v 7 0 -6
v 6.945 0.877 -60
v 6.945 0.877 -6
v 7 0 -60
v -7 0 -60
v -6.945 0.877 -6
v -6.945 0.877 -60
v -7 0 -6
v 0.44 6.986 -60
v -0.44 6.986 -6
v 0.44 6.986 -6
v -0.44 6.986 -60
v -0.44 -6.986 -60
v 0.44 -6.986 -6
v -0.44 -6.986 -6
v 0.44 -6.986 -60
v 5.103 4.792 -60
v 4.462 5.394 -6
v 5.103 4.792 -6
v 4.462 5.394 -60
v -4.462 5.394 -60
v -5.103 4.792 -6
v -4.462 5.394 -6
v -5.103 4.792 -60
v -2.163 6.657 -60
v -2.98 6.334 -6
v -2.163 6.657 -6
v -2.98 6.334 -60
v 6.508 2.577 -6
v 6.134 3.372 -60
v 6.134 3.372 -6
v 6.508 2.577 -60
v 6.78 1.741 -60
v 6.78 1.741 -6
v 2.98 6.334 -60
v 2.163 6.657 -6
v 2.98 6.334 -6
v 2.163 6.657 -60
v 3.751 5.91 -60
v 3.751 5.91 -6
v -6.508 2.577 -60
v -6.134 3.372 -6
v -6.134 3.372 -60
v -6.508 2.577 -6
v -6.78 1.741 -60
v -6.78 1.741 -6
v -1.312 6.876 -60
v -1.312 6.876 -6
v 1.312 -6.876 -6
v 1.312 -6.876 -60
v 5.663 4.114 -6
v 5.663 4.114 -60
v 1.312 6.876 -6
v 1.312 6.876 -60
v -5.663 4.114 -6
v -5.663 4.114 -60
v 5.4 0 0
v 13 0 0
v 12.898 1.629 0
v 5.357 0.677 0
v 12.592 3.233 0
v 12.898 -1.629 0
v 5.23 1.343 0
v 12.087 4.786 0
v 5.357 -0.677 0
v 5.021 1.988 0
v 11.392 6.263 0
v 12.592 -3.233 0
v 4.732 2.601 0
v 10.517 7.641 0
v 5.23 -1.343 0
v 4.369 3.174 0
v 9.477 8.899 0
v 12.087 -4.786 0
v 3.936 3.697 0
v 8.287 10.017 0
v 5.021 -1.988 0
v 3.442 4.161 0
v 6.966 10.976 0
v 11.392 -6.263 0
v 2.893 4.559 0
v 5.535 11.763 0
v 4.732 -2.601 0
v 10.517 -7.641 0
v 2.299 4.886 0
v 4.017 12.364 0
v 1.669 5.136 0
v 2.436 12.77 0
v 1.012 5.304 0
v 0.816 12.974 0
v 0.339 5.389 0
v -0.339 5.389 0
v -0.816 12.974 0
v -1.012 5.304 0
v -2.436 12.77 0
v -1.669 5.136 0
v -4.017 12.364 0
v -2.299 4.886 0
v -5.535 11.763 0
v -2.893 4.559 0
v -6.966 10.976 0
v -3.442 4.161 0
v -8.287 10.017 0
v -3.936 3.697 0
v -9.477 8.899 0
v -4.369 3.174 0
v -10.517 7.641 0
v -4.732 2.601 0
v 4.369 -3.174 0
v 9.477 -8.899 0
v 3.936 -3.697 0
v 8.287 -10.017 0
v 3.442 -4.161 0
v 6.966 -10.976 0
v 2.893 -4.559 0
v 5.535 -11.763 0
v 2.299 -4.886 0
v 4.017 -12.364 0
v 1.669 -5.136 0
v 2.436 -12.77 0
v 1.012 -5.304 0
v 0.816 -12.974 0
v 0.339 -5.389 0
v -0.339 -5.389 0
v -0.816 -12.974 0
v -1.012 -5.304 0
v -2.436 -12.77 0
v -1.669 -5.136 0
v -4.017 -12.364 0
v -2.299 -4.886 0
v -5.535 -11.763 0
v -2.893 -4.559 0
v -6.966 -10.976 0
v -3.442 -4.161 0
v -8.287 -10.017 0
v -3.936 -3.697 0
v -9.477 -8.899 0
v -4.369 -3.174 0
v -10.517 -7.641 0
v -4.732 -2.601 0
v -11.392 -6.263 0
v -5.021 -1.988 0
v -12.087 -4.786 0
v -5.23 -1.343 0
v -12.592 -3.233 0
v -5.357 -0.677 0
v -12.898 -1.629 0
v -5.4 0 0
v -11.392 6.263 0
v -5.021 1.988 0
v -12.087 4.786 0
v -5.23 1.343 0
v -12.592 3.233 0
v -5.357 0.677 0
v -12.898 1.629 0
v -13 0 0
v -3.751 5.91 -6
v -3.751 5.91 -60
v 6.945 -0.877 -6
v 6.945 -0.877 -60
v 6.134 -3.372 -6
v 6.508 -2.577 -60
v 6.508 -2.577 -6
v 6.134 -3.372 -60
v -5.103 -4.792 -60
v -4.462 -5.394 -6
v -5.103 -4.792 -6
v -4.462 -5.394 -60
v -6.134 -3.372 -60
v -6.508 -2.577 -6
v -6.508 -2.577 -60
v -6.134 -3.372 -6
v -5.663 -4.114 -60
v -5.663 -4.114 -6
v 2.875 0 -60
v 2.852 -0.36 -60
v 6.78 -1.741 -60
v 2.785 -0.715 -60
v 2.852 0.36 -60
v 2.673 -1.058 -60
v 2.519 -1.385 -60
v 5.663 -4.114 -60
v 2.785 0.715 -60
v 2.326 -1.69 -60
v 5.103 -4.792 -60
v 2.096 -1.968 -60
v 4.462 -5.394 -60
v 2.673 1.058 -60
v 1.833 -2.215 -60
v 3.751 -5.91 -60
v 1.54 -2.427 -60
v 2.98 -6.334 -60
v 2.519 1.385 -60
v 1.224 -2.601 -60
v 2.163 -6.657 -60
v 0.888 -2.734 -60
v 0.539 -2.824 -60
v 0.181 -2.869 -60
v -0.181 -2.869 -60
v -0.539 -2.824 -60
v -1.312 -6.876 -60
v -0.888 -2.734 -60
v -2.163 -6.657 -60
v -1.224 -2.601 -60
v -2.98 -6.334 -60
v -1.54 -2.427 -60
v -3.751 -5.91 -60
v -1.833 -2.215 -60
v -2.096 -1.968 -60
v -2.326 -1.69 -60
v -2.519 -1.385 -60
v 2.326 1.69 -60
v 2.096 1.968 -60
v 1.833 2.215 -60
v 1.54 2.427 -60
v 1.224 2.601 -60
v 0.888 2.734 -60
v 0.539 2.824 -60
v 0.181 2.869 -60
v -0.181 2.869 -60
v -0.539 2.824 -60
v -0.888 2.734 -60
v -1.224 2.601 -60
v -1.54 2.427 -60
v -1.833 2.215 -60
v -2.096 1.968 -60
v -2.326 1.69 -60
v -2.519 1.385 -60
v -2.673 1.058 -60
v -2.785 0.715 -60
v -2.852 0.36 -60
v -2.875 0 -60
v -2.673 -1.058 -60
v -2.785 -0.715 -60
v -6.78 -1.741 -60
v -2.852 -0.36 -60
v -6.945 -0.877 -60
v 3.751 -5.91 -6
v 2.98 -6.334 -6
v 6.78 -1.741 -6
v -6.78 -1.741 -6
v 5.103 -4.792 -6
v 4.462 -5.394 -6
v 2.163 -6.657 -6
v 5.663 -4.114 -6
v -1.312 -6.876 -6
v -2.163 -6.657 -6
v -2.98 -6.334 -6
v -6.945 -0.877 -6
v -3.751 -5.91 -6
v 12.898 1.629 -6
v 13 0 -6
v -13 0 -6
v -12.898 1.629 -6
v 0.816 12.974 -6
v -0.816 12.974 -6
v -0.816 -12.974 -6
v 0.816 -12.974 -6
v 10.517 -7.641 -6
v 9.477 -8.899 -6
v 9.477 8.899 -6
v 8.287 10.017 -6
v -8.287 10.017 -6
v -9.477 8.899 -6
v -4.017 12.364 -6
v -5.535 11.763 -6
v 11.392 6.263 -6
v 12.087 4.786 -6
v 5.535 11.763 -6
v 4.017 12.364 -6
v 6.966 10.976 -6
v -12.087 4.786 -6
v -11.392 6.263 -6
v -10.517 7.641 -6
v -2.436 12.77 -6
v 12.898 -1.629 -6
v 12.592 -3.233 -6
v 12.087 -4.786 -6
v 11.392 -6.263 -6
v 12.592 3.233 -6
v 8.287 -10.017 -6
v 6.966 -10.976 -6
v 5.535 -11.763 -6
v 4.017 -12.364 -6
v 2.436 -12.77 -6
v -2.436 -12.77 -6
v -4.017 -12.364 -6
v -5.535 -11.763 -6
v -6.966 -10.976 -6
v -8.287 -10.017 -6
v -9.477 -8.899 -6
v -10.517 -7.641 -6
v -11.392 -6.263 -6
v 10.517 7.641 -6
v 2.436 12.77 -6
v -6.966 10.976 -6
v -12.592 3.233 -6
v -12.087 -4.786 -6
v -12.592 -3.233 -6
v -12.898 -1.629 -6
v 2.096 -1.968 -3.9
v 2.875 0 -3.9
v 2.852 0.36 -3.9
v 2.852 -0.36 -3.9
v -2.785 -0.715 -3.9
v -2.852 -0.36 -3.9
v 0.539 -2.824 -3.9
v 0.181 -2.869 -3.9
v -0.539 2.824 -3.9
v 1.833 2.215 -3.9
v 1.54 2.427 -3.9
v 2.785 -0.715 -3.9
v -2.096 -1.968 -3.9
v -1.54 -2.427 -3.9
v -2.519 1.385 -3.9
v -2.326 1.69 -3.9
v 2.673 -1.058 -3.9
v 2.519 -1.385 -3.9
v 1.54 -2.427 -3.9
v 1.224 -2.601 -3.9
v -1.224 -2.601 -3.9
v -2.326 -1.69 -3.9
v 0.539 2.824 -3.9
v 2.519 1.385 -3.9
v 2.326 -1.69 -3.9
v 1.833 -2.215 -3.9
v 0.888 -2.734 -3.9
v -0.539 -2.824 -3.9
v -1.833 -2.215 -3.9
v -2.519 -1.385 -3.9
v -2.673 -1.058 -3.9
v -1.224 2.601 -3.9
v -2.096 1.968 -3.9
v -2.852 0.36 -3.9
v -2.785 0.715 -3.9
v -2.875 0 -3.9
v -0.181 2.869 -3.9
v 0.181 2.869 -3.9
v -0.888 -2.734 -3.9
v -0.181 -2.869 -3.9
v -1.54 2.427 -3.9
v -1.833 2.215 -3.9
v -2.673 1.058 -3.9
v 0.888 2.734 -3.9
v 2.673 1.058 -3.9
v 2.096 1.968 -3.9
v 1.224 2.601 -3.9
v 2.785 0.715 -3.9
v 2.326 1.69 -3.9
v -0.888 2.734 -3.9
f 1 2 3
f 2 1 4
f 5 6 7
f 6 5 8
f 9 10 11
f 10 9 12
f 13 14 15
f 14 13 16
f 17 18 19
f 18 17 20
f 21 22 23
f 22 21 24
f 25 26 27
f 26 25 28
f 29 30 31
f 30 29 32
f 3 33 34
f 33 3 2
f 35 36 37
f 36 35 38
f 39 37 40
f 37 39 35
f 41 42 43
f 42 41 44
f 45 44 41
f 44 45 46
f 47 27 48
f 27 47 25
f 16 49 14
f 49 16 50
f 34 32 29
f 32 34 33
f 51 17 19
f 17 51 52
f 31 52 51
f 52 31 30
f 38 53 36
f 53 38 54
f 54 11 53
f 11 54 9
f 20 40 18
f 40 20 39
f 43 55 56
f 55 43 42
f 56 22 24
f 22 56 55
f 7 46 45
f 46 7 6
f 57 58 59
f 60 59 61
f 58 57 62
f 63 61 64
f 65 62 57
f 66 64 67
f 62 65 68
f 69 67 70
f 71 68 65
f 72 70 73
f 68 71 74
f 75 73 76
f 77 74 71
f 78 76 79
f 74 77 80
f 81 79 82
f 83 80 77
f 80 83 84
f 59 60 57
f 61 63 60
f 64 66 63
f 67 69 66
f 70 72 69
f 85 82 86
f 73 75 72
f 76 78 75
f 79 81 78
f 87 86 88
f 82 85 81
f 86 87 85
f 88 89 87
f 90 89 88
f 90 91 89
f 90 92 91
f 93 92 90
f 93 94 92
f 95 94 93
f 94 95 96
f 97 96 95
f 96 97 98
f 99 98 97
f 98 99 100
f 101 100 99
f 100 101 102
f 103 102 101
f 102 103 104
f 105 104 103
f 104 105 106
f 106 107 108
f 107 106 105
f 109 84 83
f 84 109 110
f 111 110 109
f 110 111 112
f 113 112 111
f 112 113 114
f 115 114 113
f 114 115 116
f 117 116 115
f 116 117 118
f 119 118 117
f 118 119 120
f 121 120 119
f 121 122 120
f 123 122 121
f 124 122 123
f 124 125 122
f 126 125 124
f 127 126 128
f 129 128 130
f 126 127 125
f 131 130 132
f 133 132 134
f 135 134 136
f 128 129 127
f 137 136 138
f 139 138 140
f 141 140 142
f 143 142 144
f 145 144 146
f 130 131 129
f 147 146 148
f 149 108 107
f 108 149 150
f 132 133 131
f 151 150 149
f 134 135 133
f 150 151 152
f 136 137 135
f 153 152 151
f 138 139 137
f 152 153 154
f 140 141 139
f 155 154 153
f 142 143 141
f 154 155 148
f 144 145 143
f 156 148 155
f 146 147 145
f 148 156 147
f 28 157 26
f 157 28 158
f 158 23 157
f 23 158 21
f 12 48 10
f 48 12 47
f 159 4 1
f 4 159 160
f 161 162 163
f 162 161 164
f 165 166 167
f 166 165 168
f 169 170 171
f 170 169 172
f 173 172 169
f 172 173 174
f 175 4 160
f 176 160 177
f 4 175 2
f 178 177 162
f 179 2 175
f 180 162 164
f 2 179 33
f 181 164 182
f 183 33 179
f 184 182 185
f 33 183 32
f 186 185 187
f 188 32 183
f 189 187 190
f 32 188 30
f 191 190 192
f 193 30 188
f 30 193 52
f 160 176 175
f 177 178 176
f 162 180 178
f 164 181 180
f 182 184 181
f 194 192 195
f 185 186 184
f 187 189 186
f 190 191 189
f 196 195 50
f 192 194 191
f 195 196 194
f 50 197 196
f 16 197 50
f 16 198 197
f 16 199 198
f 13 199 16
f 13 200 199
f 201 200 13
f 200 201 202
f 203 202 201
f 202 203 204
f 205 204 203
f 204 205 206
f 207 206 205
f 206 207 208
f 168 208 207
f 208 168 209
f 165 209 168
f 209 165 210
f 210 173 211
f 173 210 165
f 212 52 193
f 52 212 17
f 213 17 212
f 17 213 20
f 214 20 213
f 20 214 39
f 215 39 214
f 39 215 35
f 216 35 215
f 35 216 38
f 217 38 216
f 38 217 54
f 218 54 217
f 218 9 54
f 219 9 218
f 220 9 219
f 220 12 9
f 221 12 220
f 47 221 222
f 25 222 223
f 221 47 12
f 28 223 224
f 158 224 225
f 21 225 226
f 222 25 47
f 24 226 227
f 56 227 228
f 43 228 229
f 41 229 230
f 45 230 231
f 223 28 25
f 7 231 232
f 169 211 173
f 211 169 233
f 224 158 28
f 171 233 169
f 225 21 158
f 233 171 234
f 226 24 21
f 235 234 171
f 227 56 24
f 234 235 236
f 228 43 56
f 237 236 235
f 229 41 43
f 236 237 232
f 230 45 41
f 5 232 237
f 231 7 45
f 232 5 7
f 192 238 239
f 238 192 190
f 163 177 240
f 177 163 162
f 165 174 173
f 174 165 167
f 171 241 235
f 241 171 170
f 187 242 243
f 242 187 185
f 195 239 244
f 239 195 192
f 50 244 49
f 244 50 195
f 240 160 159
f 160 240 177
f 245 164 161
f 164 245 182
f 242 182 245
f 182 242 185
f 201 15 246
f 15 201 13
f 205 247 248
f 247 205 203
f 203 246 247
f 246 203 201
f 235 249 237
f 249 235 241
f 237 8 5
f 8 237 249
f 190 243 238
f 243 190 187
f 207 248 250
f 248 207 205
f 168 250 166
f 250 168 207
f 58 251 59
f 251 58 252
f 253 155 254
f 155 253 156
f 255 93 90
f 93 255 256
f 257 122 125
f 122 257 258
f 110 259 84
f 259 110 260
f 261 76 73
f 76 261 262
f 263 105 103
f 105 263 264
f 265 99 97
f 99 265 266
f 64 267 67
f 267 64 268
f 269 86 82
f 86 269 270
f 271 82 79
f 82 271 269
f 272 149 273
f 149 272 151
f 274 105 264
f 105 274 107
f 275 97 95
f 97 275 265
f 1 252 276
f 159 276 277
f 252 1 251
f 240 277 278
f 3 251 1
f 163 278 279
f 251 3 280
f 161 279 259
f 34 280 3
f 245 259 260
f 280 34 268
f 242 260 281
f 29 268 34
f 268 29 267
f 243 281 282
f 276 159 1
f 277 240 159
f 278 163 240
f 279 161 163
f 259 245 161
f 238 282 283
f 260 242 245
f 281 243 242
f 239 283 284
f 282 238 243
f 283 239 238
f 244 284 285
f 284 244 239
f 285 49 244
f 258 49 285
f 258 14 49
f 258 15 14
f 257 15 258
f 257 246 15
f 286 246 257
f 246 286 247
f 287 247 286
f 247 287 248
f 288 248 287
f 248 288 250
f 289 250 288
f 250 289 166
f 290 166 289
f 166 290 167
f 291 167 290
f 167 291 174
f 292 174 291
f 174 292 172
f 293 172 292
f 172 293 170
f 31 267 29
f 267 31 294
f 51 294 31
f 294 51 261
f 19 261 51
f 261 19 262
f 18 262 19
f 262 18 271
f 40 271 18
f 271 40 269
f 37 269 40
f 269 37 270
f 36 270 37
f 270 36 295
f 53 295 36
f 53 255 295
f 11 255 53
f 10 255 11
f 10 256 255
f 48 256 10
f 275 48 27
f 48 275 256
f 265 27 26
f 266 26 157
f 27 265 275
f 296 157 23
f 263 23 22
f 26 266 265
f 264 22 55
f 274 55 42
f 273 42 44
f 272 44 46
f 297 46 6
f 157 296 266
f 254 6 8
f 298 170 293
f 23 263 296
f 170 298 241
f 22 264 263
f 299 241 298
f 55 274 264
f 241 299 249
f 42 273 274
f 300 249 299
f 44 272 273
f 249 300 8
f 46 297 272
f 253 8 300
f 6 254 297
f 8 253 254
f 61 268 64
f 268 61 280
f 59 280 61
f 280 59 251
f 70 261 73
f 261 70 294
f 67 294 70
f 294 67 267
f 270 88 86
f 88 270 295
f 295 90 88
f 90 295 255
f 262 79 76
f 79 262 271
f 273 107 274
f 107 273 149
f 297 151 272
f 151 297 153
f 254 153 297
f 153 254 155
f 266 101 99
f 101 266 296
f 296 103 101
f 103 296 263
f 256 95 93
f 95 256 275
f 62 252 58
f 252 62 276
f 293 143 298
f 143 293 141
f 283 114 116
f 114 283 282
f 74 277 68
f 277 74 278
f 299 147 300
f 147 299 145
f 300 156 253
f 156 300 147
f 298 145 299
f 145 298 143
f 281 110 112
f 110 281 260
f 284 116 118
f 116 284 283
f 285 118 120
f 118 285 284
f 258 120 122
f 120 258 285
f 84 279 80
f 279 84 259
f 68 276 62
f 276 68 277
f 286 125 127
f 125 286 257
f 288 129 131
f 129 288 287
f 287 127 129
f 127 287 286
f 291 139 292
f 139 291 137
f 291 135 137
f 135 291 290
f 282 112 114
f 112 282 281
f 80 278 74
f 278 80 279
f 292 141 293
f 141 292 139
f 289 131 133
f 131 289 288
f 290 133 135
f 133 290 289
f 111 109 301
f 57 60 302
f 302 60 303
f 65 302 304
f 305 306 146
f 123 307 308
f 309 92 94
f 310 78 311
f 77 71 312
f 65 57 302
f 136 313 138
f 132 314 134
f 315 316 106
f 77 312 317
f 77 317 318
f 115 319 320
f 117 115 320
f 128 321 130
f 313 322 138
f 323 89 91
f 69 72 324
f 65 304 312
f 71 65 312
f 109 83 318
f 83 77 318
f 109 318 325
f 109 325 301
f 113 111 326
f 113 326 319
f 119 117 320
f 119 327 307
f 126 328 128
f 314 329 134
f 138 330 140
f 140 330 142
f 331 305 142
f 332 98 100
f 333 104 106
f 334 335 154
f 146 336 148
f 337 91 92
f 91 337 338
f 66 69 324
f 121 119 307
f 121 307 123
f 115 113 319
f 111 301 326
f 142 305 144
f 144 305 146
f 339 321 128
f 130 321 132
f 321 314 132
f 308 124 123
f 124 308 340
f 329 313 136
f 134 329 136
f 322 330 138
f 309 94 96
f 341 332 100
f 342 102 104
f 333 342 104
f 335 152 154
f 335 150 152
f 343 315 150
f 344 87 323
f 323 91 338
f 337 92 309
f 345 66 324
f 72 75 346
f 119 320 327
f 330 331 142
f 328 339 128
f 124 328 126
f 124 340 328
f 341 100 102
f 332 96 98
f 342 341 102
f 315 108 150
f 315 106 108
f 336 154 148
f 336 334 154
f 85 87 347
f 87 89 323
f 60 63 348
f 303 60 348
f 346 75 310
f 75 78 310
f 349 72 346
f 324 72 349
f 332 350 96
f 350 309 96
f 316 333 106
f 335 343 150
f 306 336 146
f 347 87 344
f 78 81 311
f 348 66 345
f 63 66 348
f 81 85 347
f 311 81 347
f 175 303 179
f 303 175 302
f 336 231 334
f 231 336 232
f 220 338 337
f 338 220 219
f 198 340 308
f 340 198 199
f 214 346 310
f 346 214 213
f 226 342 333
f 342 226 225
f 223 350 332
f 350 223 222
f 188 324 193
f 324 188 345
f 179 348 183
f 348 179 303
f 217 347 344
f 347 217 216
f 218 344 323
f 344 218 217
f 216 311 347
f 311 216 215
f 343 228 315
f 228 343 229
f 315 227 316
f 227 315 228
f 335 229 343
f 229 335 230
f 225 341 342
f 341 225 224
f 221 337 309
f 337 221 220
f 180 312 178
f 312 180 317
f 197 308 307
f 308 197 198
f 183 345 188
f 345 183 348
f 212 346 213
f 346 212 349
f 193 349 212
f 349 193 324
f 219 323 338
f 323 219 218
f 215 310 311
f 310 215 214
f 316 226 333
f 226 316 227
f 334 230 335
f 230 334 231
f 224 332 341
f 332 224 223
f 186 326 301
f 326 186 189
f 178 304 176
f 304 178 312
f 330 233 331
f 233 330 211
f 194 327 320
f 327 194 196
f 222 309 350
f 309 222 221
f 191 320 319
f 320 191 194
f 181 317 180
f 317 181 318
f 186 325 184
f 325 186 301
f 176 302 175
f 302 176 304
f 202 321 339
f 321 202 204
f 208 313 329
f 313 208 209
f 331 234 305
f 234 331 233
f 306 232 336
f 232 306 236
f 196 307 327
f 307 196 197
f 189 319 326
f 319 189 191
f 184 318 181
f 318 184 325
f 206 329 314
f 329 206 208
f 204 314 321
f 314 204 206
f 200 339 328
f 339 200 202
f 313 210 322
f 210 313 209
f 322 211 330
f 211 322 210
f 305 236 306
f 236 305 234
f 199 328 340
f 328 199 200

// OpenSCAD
$fn = 50;


difference() {
	union() {
		translate(v = [0, 0, -60.0000000000]) {
			cylinder(h = 60, r = 7.0000000000);
		}
		translate(v = [0, 0, -6.0000000000]) {
			cylinder(h = 6, r = 13.0000000000);
		}
	}
	union() {
		translate(v = [0, 0, 0]) {
			rotate(a = [0, 0, 0]) {
				difference() {
					union() {
						#translate(v = [0, 0, -60.0000000000]) {
							cylinder(h = 60, r = 2.6000000000);
						}
						#translate(v = [0, 0, -3.9000000000]) {
							cylinder(h = 3.9000000000, r1 = 2.8750000000, r2 = 5.4000000000);
						}
						#translate(v = [0, 0, -60.0000000000]) {
							cylinder(h = 60, r = 2.8750000000);
						}
						#translate(v = [0, 0, -60.0000000000]) {
							cylinder(h = 60, r = 2.6000000000);
						}
					}
					union();
				}
			}
		}
	}
}
